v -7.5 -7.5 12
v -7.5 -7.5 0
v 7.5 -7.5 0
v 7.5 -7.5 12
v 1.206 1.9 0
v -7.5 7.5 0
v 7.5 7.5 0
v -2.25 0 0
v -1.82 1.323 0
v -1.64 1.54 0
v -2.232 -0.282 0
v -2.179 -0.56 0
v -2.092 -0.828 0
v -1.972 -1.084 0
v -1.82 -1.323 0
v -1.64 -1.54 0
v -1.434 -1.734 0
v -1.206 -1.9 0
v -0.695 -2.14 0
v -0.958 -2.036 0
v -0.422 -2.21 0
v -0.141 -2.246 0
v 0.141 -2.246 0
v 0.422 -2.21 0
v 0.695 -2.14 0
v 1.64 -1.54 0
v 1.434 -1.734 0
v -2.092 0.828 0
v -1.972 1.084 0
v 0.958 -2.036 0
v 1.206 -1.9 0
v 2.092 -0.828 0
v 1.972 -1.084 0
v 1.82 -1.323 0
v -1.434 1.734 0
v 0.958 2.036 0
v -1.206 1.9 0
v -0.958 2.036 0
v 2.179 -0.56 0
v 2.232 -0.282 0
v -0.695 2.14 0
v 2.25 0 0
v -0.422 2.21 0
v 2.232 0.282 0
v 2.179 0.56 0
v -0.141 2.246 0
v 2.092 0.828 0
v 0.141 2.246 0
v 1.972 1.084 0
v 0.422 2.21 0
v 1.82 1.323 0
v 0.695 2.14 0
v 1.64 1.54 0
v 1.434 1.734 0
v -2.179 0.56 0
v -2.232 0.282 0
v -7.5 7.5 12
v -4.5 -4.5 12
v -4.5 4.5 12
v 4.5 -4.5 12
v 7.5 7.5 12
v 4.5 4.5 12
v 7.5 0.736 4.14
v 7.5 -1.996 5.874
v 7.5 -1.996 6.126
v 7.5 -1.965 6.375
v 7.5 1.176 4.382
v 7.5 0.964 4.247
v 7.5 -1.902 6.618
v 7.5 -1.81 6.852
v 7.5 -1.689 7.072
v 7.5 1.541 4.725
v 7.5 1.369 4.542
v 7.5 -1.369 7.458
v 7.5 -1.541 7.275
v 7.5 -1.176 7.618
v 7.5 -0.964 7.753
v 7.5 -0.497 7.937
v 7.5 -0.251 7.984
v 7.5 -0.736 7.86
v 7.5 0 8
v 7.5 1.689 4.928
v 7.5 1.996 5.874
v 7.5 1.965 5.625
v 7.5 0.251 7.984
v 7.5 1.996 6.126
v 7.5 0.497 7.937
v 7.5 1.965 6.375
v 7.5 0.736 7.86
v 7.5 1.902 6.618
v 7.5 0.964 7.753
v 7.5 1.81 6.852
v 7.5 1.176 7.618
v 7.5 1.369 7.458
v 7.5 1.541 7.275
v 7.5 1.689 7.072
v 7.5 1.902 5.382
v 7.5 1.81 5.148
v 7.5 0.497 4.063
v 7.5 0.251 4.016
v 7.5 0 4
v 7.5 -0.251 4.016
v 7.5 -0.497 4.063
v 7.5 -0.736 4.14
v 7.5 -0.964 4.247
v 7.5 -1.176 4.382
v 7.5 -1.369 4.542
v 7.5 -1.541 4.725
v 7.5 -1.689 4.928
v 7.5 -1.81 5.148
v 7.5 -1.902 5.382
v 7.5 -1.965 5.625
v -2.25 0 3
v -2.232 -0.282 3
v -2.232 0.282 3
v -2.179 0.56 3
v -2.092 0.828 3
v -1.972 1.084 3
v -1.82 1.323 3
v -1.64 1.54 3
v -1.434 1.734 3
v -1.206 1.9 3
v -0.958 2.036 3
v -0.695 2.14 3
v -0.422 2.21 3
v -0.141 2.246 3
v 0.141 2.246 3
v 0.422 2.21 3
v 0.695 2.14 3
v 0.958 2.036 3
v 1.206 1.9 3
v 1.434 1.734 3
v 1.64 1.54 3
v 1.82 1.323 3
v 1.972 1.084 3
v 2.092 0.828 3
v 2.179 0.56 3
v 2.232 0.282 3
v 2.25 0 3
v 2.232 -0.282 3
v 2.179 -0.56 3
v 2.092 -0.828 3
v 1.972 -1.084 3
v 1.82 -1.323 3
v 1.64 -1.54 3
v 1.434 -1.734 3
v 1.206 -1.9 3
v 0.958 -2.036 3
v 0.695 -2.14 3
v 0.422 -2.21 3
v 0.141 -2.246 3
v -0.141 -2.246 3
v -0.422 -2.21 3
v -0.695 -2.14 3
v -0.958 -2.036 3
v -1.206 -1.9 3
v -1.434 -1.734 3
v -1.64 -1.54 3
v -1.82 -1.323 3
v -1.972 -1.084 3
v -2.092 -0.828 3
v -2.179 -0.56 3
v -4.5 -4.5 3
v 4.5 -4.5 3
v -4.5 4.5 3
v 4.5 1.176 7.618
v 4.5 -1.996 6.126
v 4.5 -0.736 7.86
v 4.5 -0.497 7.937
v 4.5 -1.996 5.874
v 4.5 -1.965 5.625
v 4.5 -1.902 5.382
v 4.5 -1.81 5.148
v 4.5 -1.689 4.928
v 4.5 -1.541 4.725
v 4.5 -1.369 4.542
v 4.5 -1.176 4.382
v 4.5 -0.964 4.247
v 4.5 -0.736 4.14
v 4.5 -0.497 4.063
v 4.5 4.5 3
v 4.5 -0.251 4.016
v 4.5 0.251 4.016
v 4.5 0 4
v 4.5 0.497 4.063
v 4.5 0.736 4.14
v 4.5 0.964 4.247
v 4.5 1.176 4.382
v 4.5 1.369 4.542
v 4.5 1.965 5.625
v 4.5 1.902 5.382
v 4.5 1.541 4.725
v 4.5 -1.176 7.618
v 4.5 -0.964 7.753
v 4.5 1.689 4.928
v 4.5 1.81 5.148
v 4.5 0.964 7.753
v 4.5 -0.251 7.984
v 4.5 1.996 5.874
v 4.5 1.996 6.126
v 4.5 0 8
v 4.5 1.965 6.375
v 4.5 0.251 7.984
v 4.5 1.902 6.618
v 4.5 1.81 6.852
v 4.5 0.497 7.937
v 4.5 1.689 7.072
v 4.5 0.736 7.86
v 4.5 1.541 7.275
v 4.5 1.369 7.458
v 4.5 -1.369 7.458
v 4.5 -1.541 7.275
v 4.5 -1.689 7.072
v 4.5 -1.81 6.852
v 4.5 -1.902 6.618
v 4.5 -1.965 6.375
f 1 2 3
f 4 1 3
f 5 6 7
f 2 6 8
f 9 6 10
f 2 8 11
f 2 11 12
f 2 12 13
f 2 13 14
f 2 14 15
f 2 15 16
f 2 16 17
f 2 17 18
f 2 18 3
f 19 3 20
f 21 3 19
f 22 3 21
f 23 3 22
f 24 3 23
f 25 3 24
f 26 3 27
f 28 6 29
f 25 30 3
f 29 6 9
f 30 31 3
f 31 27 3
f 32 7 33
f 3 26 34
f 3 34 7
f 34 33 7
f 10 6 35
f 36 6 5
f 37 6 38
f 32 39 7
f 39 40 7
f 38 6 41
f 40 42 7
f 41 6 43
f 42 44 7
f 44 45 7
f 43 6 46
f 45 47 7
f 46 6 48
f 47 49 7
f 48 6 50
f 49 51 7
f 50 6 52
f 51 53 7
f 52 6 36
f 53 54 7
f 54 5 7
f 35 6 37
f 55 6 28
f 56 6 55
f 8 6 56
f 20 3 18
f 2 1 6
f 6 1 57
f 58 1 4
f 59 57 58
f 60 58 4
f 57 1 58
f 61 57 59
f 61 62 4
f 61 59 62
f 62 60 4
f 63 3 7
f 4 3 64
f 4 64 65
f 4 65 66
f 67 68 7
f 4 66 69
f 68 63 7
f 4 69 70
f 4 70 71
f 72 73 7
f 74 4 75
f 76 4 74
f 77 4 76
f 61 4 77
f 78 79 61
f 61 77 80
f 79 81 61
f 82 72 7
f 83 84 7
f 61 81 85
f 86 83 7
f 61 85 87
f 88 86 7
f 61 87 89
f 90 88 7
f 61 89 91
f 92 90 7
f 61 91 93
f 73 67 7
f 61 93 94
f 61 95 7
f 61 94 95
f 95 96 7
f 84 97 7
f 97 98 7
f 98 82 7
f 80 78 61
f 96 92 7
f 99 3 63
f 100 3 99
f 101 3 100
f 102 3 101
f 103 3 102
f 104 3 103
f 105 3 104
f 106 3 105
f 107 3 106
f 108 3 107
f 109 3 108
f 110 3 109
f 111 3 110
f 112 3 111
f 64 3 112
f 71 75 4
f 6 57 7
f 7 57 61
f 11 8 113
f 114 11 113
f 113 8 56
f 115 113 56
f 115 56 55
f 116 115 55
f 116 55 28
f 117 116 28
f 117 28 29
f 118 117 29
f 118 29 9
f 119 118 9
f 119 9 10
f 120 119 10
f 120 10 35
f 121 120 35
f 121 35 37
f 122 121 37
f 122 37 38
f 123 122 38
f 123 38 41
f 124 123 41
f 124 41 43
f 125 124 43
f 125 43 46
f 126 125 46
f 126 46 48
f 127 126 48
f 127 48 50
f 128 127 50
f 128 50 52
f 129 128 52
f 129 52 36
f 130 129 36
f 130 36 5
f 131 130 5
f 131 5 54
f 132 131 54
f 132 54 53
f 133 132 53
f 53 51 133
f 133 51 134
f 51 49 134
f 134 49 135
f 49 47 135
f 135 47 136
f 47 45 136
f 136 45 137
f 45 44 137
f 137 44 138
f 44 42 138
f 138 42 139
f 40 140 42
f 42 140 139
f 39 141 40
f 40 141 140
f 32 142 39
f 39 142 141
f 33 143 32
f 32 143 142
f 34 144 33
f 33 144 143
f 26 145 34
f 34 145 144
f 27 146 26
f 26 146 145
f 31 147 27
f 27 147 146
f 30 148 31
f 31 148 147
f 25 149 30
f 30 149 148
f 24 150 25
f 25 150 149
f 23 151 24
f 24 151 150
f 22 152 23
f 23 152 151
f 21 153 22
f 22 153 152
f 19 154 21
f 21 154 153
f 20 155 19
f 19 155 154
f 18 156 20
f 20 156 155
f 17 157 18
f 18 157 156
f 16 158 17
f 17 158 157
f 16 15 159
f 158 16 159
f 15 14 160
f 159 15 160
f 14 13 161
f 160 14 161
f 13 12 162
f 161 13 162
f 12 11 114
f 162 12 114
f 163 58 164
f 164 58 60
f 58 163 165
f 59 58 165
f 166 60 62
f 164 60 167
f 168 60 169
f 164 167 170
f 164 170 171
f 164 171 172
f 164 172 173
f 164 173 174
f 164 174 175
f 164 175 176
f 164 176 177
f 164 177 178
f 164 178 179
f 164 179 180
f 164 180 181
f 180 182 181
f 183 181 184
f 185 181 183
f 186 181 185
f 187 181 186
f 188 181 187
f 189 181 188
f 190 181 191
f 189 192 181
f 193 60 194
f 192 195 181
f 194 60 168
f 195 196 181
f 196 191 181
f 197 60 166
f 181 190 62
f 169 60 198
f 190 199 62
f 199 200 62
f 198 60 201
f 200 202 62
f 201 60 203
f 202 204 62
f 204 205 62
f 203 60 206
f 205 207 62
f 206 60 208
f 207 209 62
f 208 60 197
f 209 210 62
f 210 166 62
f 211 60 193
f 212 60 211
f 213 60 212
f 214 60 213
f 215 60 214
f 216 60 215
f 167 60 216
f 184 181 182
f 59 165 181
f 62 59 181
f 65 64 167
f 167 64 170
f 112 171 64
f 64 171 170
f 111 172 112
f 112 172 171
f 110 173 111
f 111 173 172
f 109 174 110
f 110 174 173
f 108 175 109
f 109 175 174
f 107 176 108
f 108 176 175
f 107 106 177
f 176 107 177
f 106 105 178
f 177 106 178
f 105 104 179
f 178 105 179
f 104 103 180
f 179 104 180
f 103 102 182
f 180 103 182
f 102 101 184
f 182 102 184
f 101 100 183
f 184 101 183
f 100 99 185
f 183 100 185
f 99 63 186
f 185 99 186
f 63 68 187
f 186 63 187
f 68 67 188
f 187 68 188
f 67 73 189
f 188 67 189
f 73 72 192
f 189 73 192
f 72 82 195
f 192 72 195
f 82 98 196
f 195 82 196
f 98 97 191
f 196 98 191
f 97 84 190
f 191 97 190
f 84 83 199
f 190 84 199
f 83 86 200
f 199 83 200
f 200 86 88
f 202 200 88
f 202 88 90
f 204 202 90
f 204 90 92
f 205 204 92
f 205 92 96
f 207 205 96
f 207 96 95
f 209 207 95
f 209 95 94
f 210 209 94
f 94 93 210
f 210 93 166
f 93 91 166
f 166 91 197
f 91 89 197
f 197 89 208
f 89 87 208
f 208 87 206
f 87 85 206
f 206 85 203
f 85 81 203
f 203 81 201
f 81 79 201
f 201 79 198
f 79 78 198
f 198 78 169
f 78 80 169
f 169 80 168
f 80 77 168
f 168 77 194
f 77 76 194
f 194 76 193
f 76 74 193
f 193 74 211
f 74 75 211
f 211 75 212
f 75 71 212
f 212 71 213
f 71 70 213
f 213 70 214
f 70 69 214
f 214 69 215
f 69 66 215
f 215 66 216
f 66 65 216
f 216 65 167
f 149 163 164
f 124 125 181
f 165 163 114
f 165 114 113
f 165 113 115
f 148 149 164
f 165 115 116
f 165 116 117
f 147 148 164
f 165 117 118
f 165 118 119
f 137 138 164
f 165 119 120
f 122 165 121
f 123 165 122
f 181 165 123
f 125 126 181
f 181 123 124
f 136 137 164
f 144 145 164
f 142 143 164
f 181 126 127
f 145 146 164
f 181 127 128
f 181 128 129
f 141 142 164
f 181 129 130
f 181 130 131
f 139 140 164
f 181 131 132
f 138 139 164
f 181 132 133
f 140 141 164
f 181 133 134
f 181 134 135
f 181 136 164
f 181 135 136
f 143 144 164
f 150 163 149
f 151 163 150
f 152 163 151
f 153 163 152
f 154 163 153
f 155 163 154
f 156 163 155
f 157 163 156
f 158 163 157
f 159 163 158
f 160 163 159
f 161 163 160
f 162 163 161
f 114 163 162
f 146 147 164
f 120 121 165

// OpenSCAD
// mm

axis_radius = (10+1)/2; // with offset

a = 12;
f_hole_d = 4.5;
b_hole_d = 4;
wall_thickness = 3;
eps = 0.1;

$fa = 0.01;
$fn = 50;

module cleaner() {
 linear_extrude(wall_thickness) difference() {
  square(a, center=true);
  circle(d=f_hole_d);
 }
 difference() {
  linear_extrude(a) difference() {
   square(a+wall_thickness, center=true);
   square(a-wall_thickness, center=true);
  }
  translate([a/2 - wall_thickness/2 - eps/2, 0, a/2]) rotate([0, 90, 0]) cylinder(h=wall_thickness+eps, d=b_hole_d);
 }
}

cleaner();
